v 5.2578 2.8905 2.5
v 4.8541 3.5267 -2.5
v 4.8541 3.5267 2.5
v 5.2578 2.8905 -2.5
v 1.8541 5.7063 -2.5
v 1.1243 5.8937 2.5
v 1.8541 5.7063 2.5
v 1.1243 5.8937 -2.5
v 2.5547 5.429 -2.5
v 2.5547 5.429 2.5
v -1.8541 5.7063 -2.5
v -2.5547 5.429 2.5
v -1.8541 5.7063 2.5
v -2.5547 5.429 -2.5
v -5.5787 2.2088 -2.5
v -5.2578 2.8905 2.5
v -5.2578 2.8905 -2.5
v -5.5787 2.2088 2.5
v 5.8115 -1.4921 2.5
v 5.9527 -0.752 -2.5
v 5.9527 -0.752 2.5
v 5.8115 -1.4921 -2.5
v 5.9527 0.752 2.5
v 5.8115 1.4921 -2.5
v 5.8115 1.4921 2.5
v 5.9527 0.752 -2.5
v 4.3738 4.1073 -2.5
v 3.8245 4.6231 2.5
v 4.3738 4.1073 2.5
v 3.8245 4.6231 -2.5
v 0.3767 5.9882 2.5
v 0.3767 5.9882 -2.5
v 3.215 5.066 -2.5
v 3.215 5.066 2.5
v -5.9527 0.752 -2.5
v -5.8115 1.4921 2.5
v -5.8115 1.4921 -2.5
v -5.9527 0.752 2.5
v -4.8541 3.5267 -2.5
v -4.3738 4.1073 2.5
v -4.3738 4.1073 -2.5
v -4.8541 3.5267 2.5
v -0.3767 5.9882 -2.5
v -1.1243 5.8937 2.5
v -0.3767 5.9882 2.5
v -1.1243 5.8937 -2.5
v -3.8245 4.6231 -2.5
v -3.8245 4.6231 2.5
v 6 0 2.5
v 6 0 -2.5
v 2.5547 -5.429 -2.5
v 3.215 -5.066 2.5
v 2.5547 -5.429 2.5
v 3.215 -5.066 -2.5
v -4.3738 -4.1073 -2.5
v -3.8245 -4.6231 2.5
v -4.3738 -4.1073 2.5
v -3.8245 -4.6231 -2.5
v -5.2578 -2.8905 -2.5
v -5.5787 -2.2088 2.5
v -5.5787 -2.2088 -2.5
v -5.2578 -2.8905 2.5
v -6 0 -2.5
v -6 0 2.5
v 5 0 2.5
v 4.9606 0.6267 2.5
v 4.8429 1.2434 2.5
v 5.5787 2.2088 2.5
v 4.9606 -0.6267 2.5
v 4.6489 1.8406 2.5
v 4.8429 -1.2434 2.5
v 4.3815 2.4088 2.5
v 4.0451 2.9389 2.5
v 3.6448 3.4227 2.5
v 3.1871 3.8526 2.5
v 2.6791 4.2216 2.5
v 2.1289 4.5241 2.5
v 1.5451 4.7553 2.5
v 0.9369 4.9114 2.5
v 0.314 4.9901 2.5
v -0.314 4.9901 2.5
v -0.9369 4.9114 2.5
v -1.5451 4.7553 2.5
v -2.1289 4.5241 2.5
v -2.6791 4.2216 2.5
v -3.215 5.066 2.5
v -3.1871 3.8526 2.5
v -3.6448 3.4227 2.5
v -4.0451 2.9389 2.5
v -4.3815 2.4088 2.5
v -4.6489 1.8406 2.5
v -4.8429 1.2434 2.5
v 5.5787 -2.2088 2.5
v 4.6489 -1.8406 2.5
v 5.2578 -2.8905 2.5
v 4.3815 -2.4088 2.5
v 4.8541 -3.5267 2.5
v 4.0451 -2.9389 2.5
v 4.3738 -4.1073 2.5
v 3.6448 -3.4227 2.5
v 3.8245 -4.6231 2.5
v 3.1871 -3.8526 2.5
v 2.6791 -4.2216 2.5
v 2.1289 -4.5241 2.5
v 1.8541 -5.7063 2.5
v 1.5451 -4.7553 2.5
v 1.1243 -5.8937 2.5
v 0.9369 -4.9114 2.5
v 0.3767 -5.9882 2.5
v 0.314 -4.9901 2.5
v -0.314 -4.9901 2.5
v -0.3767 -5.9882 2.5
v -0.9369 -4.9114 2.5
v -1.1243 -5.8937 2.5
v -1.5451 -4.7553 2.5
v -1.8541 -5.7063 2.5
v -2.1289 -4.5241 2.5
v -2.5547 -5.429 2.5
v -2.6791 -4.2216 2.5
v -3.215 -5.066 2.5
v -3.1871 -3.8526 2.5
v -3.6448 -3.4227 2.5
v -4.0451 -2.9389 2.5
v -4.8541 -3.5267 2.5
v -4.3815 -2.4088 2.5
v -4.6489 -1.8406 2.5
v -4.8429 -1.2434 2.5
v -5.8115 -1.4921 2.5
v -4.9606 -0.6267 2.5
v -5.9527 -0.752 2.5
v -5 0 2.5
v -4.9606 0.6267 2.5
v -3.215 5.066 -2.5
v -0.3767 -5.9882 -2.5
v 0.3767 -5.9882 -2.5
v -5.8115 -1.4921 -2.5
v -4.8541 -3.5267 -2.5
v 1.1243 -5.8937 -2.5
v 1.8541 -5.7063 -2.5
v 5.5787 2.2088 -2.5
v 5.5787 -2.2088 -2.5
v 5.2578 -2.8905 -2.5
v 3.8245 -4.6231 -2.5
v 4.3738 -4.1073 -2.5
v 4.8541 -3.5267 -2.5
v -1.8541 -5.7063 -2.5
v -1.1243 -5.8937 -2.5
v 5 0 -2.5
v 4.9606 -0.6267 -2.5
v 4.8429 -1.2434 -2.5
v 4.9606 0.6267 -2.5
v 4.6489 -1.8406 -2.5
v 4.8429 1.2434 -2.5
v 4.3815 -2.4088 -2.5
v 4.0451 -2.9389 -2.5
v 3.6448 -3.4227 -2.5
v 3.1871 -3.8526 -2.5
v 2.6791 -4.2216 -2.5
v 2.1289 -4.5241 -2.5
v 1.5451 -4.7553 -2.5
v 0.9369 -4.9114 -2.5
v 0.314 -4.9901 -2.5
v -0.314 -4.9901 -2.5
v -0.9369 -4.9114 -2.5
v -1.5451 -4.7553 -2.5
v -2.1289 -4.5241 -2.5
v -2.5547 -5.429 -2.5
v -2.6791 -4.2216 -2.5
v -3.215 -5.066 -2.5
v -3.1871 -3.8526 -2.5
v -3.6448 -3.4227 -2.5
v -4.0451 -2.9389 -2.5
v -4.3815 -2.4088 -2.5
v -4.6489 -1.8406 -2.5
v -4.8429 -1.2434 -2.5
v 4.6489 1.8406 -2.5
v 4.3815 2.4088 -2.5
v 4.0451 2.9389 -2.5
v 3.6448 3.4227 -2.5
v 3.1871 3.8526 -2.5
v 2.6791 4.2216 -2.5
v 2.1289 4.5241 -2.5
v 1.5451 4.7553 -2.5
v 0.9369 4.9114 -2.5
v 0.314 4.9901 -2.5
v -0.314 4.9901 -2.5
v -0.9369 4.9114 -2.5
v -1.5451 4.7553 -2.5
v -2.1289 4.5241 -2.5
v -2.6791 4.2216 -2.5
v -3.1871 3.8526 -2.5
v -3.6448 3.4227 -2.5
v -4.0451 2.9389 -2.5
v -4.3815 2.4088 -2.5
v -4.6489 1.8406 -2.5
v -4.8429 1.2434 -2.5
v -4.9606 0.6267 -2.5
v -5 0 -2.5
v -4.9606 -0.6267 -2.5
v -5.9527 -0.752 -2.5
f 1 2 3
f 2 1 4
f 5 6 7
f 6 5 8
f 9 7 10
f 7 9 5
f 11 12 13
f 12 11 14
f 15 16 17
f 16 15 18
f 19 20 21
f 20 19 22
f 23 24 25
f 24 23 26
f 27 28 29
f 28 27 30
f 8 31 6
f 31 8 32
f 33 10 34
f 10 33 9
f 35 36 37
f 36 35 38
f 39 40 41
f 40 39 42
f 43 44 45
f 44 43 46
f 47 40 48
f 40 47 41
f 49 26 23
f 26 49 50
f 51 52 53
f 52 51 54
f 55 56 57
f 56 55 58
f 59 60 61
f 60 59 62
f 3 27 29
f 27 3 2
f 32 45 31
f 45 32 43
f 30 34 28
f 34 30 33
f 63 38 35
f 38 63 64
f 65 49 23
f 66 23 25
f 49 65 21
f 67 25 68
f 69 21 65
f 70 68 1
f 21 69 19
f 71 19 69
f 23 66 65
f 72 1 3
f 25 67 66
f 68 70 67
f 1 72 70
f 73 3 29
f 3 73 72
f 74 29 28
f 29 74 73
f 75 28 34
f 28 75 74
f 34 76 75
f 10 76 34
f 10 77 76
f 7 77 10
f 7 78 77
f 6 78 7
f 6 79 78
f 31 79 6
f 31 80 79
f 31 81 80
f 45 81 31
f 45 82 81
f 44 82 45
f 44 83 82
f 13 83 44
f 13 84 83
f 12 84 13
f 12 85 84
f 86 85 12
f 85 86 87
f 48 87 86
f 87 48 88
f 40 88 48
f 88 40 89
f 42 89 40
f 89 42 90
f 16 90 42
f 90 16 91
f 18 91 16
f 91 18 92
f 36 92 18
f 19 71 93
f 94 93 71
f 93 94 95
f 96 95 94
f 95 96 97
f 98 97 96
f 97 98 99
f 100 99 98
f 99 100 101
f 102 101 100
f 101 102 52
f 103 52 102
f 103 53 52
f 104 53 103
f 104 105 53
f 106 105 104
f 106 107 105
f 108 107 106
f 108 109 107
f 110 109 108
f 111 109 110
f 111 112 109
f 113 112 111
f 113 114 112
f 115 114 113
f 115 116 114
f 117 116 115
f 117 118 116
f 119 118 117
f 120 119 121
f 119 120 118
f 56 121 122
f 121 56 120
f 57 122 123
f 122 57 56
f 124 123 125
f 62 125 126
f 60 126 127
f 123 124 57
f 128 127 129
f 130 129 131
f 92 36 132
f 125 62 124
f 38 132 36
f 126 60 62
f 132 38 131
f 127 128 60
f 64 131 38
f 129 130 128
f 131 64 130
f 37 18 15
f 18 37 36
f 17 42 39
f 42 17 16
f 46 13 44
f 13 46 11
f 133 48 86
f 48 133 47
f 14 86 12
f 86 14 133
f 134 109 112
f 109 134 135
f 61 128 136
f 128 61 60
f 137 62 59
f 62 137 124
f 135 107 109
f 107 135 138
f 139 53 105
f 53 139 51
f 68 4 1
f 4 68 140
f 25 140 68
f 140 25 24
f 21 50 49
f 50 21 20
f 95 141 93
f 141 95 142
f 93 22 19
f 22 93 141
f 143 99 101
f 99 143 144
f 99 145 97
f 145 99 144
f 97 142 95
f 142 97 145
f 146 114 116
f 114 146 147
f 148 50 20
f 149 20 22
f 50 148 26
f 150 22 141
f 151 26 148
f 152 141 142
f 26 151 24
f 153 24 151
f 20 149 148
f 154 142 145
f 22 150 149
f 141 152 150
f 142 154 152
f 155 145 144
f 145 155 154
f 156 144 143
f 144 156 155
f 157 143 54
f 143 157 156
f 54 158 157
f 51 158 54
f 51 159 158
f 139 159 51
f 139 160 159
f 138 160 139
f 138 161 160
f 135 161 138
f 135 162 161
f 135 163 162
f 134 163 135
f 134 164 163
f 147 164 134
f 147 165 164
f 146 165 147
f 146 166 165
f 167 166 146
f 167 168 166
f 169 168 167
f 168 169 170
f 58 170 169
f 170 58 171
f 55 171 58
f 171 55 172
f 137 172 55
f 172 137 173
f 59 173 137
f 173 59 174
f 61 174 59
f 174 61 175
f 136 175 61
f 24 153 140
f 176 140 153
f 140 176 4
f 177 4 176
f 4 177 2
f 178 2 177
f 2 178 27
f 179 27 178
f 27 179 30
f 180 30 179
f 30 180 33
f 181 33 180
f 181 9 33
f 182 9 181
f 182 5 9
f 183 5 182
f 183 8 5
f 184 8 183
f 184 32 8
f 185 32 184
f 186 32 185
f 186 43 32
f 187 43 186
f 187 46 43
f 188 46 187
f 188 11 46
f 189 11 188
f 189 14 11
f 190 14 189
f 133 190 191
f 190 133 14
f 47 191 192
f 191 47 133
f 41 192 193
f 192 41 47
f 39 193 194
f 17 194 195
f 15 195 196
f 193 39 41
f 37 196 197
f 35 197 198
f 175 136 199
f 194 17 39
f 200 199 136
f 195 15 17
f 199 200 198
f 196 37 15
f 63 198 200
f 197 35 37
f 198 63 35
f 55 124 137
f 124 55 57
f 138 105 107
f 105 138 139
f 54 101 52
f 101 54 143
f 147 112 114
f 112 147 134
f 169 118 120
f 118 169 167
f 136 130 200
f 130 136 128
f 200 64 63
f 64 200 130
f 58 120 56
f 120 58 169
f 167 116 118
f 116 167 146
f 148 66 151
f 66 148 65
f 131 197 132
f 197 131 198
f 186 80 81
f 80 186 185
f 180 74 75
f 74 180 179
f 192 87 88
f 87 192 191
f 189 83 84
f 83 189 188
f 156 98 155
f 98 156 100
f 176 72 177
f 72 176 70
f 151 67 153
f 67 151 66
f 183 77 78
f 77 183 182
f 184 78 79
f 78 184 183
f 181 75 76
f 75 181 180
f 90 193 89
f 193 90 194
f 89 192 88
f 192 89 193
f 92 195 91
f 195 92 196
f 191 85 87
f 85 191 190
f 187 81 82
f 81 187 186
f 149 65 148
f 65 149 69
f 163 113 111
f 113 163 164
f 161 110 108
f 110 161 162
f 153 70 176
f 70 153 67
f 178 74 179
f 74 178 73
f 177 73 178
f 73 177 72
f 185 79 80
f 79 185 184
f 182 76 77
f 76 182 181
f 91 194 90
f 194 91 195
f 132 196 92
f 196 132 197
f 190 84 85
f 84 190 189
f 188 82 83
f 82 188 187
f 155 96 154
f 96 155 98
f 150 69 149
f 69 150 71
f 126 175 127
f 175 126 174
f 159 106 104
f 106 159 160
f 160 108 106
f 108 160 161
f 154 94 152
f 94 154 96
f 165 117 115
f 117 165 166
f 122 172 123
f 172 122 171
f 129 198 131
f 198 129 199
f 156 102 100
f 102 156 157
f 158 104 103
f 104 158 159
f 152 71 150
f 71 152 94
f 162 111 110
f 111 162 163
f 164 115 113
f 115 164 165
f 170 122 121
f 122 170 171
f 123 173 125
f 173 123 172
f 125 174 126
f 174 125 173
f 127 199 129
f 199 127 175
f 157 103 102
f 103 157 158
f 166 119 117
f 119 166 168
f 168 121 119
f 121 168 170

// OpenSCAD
$fn = 50;


difference() {
	union() {
		translate(v = [0, 0, -2.5000000000]) {
			cylinder(h = 5, r = 6.0000000000);
		}
	}
	union() {
		translate(v = [0, 0, -100.0000000000]) {
			cylinder(h = 200, r = 5);
		}
	}
}
